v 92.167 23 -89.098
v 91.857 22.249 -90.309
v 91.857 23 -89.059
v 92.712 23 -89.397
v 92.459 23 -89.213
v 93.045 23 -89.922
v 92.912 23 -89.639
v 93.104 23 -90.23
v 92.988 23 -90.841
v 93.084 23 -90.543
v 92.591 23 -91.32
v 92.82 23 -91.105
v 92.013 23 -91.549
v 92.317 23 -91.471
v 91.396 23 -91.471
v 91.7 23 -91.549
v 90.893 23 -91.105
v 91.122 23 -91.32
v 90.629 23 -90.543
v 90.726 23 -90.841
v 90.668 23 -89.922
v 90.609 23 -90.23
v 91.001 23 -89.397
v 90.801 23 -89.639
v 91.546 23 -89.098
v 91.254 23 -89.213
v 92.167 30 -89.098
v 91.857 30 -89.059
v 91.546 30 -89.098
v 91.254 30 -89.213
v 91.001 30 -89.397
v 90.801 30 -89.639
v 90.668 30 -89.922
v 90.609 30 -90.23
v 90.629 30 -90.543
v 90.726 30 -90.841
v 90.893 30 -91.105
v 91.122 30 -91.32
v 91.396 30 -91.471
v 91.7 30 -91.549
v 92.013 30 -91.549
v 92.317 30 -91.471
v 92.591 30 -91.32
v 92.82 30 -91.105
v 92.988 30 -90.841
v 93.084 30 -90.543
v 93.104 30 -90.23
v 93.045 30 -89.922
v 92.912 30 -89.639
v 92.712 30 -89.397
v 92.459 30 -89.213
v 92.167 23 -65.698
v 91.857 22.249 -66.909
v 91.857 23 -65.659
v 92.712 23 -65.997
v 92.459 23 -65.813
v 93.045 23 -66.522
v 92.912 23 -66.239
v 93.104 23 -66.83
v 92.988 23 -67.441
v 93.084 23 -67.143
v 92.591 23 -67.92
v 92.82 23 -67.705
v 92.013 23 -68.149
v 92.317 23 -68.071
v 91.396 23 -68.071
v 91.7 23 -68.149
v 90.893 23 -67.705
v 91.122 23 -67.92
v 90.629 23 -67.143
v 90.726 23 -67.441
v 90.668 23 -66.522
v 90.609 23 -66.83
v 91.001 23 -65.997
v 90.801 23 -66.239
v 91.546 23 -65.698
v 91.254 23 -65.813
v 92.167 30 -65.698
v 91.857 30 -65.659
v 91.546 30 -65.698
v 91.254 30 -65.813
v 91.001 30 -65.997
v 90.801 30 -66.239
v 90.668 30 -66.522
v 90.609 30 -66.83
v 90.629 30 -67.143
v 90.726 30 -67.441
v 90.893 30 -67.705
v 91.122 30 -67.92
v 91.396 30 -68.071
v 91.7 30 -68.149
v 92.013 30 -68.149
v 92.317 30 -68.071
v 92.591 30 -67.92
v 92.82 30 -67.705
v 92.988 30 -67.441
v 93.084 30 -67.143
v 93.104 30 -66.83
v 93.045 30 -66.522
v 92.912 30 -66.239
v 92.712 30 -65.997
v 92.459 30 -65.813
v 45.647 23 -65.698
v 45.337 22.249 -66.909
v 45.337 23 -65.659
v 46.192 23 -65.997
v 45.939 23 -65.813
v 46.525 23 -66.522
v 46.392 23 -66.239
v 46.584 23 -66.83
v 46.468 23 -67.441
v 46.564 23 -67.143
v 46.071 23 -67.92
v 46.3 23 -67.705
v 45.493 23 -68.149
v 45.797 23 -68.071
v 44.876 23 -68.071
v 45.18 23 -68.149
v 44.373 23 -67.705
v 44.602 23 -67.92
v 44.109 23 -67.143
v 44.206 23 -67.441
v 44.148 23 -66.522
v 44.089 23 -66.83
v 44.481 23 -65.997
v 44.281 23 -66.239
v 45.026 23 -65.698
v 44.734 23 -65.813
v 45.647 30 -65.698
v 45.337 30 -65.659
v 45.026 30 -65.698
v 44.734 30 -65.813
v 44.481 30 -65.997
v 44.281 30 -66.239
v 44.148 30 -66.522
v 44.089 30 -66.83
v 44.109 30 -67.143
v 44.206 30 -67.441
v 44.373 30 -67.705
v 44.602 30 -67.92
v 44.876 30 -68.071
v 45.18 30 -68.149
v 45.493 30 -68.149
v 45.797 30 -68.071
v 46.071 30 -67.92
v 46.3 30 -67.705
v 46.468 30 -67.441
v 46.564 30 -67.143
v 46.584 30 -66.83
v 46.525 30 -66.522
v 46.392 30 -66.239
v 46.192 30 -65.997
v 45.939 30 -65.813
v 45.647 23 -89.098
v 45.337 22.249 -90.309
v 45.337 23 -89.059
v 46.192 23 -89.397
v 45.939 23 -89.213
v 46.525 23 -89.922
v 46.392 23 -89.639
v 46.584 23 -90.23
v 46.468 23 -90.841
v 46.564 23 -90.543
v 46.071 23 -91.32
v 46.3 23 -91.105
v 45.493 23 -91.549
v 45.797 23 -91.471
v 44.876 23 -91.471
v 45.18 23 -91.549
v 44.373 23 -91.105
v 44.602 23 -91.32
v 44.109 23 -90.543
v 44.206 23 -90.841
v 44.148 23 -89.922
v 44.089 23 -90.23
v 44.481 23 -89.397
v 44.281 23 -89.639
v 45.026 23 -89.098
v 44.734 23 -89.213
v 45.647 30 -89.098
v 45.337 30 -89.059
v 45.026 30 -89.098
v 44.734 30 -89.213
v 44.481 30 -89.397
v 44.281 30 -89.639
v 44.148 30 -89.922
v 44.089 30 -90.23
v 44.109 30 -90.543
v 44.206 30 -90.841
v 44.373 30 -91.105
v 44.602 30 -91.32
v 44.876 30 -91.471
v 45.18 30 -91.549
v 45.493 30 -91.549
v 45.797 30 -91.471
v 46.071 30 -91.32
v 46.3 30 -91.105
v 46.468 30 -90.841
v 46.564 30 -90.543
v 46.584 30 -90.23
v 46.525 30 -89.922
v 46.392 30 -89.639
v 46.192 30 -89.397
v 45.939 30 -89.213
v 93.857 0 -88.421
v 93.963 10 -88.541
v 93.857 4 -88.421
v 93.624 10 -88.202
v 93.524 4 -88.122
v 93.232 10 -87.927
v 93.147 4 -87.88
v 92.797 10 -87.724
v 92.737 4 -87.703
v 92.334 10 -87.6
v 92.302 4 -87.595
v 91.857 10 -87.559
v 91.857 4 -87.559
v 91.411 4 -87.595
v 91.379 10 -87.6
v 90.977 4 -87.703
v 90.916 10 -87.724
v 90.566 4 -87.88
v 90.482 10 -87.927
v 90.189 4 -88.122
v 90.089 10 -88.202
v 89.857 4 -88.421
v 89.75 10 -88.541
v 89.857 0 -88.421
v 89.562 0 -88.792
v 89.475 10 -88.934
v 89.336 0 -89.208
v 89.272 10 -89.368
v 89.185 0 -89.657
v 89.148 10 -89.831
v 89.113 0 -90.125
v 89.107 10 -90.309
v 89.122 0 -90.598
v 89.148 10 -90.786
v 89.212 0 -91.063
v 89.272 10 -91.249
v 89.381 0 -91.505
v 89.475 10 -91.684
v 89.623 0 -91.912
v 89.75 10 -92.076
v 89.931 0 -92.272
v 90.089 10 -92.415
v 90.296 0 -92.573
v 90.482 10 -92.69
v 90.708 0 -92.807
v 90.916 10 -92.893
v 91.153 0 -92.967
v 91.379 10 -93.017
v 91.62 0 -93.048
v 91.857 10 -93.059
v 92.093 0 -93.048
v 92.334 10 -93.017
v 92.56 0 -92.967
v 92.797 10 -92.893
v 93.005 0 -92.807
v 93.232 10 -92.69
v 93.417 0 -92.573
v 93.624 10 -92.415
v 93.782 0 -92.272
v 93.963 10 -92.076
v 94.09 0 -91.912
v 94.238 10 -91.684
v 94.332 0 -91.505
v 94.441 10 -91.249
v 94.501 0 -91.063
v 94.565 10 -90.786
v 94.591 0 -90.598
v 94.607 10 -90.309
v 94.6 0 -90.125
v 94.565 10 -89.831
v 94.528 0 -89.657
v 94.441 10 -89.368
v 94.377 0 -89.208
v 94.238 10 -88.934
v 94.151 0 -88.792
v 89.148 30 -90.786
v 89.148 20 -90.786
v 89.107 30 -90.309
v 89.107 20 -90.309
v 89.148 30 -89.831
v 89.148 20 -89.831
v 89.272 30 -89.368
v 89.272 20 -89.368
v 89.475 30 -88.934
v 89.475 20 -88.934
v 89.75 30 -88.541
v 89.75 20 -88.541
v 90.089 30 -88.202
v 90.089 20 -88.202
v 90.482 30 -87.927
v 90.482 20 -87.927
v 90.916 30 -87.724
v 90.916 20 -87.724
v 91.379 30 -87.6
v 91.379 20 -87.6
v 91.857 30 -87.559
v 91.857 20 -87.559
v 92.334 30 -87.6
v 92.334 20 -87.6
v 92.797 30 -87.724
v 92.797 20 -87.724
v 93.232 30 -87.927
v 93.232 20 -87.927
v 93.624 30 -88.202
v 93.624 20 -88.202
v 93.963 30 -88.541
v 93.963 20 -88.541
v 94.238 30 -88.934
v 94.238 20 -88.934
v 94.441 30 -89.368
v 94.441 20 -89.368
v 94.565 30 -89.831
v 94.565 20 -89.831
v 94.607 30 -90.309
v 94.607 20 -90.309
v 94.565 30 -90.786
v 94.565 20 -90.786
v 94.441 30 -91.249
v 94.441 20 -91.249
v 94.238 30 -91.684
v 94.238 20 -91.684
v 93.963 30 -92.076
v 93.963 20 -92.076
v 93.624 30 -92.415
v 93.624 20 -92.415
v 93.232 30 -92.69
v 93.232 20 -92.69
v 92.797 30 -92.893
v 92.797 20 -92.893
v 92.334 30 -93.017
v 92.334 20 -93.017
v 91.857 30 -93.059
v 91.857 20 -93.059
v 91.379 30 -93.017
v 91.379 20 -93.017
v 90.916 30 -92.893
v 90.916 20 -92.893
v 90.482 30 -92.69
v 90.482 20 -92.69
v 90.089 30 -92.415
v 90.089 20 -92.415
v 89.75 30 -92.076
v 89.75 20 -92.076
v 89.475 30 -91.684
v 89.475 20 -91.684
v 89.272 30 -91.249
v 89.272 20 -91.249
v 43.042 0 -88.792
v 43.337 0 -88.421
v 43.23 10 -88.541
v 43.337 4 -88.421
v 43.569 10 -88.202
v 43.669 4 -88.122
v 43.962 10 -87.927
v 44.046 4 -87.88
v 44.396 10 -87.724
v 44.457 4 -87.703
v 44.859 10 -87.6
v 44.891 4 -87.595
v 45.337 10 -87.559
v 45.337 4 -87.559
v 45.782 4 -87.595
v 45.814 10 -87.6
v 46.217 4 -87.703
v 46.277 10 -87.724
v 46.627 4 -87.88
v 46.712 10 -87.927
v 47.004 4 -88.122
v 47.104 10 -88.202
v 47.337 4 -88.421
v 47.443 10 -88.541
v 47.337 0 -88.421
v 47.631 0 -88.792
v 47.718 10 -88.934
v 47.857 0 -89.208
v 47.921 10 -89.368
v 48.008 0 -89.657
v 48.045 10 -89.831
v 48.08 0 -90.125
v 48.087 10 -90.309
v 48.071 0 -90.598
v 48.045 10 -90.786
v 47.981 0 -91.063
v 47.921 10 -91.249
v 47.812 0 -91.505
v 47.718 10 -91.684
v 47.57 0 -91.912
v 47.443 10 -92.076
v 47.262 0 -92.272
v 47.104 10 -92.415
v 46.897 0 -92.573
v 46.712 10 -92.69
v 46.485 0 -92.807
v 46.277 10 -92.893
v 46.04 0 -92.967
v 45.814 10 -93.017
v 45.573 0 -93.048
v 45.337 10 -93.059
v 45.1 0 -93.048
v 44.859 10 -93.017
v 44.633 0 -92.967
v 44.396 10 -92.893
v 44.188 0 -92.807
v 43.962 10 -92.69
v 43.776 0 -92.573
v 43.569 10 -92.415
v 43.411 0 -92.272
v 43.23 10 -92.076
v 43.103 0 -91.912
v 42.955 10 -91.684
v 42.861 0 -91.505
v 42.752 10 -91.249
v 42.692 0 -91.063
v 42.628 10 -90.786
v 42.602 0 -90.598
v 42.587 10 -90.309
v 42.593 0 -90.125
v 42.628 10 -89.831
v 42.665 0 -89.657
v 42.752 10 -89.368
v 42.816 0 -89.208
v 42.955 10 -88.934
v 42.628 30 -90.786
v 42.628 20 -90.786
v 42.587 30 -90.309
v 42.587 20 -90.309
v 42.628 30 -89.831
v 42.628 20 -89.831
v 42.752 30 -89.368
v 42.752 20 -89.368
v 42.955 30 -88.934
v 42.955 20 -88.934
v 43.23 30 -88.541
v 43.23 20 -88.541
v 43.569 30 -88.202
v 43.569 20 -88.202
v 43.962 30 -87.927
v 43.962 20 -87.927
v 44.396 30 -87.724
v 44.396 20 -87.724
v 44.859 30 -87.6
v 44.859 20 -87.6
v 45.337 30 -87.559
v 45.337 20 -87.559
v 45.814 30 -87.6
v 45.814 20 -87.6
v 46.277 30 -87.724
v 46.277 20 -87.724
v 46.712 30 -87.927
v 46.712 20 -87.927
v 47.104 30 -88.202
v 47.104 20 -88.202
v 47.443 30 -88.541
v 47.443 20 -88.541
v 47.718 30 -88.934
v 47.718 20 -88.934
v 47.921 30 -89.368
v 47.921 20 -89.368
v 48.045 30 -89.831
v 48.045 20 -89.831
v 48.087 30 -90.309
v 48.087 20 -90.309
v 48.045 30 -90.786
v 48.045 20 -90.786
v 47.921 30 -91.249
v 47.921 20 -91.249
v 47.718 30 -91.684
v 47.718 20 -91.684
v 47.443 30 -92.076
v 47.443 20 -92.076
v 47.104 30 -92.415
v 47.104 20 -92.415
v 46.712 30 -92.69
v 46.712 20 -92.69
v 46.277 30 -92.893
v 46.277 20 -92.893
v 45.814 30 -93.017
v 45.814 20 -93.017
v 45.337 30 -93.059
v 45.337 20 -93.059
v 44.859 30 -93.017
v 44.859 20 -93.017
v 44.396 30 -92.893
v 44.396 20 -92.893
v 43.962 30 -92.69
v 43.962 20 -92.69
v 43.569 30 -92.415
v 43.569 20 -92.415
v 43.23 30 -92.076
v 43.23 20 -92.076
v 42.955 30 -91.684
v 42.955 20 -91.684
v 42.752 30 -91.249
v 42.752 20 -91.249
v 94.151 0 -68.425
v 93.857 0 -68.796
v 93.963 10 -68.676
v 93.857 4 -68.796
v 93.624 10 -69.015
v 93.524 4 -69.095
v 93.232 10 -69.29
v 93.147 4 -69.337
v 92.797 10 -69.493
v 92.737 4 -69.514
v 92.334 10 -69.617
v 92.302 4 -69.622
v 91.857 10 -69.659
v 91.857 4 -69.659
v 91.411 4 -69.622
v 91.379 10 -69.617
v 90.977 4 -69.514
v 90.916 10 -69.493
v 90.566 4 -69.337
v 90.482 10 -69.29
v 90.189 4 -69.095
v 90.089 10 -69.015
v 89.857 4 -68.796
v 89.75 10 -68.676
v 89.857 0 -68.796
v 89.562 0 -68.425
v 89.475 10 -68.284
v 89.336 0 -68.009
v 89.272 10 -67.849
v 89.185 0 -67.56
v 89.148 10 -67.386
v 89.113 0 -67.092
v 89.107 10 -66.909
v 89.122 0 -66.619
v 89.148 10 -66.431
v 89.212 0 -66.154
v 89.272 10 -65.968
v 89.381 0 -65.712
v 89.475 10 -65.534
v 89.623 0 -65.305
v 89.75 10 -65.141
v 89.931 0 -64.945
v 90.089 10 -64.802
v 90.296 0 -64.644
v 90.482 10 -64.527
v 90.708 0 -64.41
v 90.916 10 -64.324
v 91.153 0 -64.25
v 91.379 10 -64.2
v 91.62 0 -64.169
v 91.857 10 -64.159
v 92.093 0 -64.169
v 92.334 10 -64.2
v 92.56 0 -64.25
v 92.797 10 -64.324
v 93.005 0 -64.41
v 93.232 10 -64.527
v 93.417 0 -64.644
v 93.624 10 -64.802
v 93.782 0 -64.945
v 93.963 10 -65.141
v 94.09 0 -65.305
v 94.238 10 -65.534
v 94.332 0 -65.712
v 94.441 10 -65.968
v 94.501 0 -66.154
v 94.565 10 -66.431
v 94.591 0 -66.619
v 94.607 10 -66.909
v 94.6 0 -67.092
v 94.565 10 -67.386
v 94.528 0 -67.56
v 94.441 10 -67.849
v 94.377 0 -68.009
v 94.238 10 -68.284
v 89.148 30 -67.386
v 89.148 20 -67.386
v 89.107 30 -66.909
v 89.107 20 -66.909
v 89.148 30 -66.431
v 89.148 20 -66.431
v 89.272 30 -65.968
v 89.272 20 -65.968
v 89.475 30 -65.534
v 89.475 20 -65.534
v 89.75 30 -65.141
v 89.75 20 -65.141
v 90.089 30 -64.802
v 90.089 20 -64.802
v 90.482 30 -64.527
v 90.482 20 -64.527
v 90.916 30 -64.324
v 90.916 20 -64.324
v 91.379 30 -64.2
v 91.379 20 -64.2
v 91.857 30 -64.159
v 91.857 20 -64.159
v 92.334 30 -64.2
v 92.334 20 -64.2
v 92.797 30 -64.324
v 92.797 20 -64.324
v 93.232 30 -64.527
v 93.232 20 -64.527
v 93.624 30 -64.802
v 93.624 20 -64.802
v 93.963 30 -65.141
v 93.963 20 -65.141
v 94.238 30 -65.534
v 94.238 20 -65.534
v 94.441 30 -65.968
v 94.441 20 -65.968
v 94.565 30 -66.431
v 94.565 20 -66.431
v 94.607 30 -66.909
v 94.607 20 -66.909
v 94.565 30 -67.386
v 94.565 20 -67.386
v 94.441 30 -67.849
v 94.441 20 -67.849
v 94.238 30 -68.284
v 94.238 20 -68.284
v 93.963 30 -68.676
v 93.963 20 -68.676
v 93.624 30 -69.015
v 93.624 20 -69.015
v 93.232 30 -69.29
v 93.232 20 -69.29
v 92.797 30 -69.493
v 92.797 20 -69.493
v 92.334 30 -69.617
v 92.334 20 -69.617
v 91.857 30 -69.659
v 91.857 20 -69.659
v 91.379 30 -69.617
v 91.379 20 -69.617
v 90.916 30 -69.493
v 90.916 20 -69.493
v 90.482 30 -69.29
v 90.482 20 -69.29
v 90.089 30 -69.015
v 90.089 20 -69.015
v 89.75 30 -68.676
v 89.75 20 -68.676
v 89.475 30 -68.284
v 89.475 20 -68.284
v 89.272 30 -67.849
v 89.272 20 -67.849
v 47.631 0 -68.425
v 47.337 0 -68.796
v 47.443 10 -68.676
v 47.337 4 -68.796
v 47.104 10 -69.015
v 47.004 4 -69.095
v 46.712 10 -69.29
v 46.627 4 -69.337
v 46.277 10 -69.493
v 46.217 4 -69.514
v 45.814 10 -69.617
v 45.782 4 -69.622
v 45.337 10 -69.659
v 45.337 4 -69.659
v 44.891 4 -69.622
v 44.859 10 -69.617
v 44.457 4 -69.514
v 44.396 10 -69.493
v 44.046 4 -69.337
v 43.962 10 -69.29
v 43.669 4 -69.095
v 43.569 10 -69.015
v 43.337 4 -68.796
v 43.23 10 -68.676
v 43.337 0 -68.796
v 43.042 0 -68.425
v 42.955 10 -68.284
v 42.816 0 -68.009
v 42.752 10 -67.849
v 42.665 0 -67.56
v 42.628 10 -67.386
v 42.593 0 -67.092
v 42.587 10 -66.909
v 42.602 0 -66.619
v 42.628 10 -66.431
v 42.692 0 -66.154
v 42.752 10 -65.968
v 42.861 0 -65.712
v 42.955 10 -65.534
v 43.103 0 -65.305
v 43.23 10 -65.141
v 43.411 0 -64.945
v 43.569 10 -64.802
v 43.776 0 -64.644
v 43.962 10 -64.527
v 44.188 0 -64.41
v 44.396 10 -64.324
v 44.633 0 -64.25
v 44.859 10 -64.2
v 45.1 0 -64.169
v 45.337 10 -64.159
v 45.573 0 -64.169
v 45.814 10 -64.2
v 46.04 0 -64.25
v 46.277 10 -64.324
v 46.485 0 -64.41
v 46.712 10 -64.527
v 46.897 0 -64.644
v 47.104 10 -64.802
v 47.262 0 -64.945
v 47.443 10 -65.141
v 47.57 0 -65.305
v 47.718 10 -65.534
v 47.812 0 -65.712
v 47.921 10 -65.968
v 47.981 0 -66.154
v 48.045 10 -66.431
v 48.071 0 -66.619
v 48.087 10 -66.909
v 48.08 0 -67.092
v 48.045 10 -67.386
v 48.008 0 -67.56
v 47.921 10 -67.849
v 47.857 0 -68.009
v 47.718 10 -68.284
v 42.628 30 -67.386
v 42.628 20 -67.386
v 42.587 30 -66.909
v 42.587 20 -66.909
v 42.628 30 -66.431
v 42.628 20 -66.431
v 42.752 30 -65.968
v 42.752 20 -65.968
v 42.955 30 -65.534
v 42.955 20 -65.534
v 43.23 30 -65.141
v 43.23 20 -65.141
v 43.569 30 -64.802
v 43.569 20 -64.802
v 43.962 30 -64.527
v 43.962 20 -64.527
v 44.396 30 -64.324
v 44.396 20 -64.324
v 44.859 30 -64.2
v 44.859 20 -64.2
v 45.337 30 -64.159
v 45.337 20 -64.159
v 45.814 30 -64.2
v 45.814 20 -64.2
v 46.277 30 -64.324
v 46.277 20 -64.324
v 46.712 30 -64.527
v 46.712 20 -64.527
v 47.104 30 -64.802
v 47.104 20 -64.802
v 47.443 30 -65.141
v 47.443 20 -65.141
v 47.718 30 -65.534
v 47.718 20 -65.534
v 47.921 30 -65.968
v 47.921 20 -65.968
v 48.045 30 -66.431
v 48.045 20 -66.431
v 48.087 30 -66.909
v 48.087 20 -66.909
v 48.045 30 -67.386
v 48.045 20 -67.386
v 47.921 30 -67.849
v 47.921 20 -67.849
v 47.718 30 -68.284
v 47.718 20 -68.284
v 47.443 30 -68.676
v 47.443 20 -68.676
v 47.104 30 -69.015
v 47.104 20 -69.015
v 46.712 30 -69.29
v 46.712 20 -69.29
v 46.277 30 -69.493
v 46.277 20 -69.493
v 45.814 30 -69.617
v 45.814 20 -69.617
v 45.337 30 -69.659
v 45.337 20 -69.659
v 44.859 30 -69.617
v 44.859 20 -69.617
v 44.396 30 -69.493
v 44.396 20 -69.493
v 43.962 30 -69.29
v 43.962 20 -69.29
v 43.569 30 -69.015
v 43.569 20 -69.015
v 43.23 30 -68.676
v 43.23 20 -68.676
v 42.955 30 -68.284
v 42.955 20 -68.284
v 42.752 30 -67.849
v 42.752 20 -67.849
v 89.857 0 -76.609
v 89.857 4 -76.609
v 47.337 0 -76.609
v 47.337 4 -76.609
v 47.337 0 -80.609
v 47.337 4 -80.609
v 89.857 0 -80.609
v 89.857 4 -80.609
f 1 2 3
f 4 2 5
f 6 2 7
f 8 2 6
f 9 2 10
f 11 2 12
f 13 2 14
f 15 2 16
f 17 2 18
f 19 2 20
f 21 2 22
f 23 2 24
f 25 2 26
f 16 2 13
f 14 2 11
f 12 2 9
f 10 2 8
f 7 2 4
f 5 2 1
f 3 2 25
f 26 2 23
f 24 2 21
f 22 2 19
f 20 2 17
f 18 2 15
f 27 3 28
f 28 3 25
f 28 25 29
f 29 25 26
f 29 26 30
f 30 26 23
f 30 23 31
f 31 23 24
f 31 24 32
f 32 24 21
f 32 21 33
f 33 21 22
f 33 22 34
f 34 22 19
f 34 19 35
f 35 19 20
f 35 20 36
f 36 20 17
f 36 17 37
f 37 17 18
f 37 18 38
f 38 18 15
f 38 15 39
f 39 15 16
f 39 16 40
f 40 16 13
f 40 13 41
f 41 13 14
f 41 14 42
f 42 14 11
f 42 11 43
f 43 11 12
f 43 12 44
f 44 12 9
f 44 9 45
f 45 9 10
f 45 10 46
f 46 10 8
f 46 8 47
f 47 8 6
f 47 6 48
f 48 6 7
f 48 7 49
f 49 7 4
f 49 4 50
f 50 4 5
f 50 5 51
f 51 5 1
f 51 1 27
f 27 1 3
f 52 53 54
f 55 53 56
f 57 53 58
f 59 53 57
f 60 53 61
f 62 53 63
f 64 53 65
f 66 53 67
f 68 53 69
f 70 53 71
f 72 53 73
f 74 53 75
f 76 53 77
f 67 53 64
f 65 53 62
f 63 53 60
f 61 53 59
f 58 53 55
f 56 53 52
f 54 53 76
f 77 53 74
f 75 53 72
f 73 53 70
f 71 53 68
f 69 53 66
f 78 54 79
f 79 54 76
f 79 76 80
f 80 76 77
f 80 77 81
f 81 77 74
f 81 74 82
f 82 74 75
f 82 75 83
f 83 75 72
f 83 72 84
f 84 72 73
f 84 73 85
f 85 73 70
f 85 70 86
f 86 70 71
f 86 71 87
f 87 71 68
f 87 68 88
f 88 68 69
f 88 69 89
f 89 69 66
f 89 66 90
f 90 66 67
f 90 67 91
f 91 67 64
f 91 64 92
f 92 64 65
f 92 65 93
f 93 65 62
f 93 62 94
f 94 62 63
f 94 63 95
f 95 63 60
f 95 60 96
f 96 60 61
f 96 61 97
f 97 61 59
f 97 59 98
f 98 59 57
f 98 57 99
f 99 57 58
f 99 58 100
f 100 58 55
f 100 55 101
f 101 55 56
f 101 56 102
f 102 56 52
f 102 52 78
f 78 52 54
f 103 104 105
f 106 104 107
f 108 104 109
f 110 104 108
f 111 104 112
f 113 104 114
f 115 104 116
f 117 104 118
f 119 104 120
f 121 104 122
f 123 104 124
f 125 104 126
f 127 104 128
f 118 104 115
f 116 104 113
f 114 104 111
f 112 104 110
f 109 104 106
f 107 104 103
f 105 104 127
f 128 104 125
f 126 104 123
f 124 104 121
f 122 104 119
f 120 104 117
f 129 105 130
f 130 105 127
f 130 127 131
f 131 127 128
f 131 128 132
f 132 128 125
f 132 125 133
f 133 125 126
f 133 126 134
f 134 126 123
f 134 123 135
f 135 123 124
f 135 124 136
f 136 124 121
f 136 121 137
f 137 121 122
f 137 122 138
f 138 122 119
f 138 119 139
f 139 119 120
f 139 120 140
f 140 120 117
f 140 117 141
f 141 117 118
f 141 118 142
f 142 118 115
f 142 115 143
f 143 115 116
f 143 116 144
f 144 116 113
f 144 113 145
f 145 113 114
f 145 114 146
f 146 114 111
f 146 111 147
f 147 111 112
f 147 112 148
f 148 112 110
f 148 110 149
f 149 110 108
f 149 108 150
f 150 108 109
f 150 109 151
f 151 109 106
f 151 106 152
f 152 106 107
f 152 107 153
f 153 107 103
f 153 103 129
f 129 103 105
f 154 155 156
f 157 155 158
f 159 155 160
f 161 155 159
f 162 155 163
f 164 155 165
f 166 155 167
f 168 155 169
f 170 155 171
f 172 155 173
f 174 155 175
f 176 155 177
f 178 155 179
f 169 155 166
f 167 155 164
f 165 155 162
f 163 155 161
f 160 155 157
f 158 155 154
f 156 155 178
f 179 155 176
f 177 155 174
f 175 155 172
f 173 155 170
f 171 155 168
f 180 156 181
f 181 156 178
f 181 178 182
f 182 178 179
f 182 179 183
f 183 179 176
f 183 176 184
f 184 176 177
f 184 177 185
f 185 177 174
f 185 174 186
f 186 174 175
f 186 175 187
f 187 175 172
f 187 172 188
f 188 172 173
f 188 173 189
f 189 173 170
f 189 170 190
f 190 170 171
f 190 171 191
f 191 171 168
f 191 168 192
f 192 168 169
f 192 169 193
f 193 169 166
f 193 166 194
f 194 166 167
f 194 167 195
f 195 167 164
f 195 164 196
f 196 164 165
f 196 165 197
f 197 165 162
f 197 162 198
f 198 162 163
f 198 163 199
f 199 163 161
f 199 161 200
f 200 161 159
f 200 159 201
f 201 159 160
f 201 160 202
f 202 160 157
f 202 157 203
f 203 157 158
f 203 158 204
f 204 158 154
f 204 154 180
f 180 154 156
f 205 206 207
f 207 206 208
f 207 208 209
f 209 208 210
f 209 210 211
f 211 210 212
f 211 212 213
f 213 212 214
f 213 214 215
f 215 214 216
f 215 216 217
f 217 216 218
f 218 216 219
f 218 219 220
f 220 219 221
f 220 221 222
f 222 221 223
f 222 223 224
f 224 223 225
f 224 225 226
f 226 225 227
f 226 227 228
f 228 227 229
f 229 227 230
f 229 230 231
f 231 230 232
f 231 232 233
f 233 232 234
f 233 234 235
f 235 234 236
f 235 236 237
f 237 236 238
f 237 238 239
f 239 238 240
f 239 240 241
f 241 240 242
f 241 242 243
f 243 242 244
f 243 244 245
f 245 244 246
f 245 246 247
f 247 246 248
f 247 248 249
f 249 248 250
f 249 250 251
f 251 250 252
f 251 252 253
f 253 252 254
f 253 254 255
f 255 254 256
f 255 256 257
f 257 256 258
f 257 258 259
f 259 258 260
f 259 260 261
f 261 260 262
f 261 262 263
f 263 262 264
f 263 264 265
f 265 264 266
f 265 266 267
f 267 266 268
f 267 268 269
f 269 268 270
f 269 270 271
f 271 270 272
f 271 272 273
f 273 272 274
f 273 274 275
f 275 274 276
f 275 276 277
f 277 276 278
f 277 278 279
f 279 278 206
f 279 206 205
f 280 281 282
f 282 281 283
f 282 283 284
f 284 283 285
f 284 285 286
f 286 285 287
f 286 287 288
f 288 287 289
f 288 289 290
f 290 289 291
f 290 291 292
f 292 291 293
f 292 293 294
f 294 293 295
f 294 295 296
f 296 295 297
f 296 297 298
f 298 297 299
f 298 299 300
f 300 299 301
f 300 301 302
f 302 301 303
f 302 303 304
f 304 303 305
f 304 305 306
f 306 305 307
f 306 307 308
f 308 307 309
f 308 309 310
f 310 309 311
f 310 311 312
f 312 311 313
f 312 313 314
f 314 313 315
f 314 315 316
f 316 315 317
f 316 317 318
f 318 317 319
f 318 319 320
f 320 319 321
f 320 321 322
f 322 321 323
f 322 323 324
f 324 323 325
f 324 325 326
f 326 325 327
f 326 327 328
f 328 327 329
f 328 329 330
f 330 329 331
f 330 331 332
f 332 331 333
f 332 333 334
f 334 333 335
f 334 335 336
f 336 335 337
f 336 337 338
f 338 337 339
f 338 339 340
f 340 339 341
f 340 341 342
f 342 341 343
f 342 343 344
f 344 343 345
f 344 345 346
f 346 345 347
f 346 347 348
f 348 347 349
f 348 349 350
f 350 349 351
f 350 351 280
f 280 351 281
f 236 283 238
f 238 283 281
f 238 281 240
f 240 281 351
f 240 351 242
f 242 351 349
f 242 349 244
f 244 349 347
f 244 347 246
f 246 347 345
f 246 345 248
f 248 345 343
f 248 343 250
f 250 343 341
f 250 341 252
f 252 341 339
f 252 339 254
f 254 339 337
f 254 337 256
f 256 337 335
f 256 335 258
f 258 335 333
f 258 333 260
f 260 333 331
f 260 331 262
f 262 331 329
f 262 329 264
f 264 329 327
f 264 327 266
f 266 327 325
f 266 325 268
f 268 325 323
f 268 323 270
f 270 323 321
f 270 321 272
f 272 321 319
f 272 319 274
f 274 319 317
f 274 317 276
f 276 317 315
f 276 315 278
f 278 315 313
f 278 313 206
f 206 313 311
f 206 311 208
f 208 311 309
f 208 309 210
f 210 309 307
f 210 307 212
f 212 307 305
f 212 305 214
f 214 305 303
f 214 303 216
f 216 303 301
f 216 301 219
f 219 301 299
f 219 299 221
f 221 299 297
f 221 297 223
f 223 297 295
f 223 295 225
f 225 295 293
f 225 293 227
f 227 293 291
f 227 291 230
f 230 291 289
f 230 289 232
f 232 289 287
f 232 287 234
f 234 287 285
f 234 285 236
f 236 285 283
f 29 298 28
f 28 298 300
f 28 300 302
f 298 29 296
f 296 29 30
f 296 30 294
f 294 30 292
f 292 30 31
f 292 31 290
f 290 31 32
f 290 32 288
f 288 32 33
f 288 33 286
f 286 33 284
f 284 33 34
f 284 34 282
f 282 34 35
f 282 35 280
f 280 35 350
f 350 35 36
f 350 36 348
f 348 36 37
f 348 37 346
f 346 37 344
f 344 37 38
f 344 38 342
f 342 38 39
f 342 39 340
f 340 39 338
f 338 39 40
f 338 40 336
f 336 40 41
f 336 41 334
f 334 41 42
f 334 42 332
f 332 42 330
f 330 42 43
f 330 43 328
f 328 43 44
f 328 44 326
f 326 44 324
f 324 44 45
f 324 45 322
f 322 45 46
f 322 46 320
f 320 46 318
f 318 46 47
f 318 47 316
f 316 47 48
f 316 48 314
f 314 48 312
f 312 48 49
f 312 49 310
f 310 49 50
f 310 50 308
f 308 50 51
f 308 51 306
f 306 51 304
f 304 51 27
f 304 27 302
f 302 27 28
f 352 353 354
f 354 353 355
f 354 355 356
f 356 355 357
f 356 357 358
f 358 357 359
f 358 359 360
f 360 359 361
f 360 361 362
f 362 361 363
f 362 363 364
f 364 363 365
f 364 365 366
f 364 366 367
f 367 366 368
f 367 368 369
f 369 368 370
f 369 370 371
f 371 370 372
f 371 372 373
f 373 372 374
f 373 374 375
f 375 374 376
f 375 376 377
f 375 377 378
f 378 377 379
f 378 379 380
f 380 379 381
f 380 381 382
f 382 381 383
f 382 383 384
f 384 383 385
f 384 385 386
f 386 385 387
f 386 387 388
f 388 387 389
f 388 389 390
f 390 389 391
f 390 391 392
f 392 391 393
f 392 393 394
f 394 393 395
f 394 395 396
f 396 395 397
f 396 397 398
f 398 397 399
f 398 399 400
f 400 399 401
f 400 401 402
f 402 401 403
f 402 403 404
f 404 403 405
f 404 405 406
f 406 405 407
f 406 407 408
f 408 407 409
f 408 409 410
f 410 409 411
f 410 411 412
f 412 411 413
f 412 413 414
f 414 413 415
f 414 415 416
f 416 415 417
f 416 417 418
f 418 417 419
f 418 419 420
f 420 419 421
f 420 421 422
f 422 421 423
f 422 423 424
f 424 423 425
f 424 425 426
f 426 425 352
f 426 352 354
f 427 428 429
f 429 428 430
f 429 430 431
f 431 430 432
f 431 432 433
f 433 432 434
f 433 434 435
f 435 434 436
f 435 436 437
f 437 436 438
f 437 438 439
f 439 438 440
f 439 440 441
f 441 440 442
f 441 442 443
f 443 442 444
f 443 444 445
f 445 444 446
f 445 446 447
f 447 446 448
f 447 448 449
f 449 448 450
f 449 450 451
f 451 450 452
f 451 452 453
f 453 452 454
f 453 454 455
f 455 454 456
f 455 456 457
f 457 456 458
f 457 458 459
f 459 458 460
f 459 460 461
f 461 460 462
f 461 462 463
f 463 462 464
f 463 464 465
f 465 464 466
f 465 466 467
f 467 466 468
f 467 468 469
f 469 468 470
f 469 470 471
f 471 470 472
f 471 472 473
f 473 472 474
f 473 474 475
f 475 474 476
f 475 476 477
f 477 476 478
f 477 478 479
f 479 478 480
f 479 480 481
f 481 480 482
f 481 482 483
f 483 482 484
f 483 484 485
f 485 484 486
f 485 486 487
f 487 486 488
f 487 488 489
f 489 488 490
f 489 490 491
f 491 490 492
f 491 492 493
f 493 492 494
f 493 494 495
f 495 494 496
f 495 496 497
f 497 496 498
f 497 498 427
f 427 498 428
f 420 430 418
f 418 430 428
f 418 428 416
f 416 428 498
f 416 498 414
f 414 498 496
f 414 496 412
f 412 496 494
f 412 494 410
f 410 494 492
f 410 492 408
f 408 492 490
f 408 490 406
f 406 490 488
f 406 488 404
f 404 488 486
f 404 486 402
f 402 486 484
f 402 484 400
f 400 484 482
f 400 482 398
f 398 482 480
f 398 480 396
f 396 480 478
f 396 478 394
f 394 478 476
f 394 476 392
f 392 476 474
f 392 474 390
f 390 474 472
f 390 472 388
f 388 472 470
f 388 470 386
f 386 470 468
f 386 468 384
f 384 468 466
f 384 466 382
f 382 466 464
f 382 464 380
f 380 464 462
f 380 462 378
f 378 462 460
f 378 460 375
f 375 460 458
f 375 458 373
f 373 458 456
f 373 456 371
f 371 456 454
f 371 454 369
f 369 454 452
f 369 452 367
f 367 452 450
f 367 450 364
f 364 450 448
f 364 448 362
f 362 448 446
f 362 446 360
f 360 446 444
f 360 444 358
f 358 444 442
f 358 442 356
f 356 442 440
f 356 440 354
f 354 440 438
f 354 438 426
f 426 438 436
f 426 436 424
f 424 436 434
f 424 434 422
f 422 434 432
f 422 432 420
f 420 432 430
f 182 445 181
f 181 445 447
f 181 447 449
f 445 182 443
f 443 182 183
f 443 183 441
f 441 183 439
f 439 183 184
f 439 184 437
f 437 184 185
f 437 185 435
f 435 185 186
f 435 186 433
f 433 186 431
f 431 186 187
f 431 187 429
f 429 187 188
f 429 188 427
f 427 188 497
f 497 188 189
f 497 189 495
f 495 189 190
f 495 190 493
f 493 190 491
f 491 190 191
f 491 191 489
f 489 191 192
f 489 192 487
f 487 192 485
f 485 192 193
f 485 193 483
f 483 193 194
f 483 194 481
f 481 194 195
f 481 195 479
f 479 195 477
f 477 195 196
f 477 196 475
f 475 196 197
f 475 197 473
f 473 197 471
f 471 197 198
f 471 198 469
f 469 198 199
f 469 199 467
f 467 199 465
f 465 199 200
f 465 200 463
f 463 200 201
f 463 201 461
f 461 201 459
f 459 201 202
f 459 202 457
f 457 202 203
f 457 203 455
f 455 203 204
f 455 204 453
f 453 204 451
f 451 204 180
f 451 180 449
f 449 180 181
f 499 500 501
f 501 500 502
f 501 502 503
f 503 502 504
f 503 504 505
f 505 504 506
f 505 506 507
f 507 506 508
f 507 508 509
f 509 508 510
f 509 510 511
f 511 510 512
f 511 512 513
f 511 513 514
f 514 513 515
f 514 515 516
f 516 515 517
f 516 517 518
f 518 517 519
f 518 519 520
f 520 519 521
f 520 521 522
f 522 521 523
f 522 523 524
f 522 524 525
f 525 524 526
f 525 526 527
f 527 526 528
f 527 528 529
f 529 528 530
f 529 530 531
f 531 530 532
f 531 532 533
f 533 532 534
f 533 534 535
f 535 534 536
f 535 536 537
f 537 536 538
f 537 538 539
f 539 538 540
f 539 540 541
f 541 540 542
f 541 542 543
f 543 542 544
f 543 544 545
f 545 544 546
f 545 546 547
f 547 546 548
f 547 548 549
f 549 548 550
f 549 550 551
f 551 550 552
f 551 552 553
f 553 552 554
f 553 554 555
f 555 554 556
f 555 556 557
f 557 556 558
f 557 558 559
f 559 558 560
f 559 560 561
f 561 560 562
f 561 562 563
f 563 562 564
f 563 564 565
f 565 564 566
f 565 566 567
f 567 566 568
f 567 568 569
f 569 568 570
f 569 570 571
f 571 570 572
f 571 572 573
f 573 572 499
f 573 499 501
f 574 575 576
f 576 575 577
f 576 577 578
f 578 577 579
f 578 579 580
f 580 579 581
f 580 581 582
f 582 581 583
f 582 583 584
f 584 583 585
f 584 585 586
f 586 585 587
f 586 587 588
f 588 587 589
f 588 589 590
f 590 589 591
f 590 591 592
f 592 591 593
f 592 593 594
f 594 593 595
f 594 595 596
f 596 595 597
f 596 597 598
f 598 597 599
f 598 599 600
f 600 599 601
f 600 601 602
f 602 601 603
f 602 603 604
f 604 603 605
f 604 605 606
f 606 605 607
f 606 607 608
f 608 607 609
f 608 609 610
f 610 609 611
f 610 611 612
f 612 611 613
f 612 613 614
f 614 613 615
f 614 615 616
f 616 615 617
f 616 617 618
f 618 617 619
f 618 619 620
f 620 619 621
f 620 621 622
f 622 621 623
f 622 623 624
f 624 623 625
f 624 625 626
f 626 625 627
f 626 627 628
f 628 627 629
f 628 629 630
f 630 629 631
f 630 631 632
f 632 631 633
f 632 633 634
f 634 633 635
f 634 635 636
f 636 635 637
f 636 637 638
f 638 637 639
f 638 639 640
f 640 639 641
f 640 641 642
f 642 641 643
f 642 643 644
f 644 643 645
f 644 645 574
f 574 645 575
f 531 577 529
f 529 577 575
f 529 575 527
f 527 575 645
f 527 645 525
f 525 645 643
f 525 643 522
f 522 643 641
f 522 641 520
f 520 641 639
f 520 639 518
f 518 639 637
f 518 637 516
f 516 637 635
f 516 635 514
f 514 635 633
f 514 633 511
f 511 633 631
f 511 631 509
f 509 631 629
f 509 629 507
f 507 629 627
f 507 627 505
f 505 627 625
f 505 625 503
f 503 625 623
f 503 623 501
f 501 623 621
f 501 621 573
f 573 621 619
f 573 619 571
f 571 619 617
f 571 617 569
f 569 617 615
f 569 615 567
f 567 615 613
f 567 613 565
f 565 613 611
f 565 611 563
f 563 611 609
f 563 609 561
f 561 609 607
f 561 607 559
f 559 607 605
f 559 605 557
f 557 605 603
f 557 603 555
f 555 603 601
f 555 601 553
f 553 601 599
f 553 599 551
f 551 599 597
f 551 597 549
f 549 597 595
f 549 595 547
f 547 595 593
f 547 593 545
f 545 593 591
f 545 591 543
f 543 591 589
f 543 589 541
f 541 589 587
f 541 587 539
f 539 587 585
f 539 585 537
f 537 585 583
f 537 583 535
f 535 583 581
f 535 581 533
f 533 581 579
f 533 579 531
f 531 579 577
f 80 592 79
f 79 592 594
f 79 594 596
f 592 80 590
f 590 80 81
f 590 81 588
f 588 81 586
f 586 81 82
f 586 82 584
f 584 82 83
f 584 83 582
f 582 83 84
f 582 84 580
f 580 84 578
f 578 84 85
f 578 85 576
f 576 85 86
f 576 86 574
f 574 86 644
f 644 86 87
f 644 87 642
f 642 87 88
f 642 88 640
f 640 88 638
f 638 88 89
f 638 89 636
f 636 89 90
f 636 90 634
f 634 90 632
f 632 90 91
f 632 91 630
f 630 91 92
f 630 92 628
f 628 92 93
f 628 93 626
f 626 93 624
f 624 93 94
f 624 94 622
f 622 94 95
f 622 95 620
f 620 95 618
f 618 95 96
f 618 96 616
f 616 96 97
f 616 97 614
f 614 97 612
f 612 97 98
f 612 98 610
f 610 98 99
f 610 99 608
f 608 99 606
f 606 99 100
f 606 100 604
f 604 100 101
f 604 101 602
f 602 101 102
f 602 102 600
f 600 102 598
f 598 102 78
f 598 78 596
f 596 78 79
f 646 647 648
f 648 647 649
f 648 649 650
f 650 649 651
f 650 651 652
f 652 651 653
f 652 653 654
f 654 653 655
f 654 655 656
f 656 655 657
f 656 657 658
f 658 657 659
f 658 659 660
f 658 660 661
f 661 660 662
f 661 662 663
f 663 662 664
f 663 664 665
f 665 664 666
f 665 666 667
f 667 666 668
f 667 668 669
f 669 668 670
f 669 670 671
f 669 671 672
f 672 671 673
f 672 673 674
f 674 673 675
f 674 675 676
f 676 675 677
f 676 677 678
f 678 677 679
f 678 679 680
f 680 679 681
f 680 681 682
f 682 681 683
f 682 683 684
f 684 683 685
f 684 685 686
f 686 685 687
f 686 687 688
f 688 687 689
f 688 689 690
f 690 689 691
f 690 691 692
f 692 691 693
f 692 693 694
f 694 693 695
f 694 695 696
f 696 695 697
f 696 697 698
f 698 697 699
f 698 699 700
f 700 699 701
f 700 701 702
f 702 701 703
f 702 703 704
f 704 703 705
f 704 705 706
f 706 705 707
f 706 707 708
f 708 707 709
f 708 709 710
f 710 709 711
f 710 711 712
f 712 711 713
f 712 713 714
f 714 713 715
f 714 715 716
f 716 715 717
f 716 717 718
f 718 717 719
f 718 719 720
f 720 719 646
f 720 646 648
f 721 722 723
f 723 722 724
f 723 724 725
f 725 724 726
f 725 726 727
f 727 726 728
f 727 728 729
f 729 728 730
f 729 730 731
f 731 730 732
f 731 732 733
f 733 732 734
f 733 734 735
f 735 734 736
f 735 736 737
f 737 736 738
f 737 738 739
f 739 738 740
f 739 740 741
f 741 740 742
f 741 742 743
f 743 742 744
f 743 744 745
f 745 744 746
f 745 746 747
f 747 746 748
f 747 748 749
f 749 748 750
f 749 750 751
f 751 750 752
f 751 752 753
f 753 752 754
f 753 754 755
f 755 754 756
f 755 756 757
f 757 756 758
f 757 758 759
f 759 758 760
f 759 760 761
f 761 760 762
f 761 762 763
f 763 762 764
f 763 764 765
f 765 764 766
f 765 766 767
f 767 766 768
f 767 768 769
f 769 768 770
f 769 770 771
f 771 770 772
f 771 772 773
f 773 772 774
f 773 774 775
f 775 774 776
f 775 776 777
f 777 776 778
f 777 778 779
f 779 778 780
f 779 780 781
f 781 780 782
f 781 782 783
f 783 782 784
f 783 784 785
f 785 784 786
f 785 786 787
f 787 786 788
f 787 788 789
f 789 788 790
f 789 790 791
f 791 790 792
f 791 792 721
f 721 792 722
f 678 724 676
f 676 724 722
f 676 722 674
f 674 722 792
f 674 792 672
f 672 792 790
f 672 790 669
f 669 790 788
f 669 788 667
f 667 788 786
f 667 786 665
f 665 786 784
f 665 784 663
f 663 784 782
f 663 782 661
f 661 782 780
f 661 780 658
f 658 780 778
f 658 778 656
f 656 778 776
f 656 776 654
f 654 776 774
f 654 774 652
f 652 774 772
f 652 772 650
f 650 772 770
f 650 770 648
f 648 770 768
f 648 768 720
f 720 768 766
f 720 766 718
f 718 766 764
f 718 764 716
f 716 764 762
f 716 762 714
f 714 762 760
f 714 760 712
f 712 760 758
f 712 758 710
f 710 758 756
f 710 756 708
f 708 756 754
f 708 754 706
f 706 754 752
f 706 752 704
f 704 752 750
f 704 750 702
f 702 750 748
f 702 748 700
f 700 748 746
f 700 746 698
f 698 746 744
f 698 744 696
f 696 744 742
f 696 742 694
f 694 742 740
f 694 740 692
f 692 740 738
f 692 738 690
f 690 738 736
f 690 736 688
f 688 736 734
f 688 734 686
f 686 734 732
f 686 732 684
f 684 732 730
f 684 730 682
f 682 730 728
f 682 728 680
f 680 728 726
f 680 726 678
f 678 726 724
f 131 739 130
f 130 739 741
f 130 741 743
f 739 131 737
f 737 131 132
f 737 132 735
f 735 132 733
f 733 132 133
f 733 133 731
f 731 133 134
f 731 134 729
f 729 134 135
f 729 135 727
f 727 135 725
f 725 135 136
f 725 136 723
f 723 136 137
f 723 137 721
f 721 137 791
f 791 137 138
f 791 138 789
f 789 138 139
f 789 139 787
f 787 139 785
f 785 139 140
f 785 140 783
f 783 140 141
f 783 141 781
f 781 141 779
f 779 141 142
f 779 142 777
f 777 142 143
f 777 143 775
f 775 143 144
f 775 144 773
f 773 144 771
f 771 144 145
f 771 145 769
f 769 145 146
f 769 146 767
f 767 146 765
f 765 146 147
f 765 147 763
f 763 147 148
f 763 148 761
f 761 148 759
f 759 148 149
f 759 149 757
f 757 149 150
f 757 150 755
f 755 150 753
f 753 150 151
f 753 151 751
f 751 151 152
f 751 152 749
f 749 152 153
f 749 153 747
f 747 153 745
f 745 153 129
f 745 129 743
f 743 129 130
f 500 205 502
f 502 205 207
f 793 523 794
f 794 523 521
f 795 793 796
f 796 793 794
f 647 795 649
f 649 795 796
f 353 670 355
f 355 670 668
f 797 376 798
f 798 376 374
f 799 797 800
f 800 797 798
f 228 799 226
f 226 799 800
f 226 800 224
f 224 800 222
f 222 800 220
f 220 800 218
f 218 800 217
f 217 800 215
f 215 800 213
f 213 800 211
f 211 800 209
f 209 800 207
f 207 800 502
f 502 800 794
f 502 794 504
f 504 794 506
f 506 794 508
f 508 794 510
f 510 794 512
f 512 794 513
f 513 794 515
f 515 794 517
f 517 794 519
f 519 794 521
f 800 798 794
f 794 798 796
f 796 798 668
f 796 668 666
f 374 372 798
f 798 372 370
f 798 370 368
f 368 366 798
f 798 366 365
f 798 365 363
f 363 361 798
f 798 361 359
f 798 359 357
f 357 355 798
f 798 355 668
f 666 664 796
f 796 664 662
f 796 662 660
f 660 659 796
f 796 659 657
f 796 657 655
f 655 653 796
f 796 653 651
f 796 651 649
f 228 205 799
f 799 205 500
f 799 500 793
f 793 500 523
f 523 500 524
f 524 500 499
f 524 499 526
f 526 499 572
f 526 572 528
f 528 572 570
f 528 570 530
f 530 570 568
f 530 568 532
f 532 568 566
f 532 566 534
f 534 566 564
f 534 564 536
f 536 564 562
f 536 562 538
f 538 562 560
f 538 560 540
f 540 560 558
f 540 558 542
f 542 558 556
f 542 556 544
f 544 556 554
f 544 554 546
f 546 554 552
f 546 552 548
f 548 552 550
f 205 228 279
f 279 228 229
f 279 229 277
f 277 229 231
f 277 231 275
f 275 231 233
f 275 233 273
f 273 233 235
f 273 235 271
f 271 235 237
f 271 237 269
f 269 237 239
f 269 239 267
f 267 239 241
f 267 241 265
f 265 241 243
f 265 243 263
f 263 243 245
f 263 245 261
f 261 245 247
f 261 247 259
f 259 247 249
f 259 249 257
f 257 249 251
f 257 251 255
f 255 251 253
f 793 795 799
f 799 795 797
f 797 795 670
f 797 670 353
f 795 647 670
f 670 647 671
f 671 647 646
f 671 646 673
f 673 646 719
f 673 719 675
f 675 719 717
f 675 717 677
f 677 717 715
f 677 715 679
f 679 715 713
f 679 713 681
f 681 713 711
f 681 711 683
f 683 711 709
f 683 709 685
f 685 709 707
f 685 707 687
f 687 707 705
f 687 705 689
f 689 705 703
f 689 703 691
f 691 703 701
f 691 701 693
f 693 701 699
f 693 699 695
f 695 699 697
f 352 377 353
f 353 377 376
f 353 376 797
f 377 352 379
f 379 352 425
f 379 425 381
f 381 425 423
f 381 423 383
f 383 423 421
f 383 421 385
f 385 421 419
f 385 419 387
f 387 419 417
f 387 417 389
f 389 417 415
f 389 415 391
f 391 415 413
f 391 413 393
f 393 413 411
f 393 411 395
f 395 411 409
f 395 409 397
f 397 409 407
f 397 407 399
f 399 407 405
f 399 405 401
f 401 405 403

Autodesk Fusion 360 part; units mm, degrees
sketch "Schizzo8" plane through (0, 0, 0) normal (0, 1, 0) x (1, 0, 0)
  line L0 (45.3365, 90.3085) -> (91.8565, 90.3085)
  line L1 (91.8565, 90.3085) -> (91.8565, 66.9085)
  line L2 (91.8565, 66.9085) -> (45.3365, 66.9085)
  line L3 (45.3365, 66.9085) -> (45.3365, 90.3085)
  circle A0 centre (45.3365, 90.3085) radius 2.75
  circle A1 centre (91.8565, 90.3085) radius 2.75
  circle A2 centre (91.8565, 66.9085) radius 2.75
  circle A3 centre (45.3365, 66.9085) radius 2.75
  line L4 (45.3365, 90.3085) -> (47.3365, 90.3085)
  line L5 (45.3365, 90.3085) -> (43.3365, 90.3085)
  line L6 (43.3365, 90.3085) -> (43.3365, 66.9085)
  line L7 (47.3365, 90.3085) -> (47.3365, 66.9085)
  line L8 (91.8565, 90.3085) -> (93.8565, 90.3085)
  line L9 (91.8565, 90.3085) -> (89.8565, 90.3085)
  line L10 (89.8565, 90.3085) -> (89.8565, 66.9085)
  line L11 (93.8565, 90.3085) -> (93.8565, 66.9085)
  line L12 (93.8565, 78.6085) -> (93.8565, 80.6085)
  line L13 (93.8565, 78.6085) -> (93.8565, 76.6085)
  line L14 (93.8565, 80.6085) -> (43.3365, 80.6085)
  line L15 (93.8565, 76.6085) -> (43.3365, 76.6085)
  dimension "d71" = 46.52
  dimension "d72" = 23.4
  dimension "d73" = 5.5
  dimension "d74" = 5.5
  dimension "d75" = 5.5
  dimension "d76" = 5.5
  dimension "d77" = 2
  dimension "d78" = 2
  dimension "d79" = 2
  dimension "d80" = 2
  dimension "d81" = 2
  dimension "d82" = 2
extrude "Estrusione14" add sketch "Schizzo8" along normal blind 4 contours L3 A0 L7 L14 | L3 A0 L6 L14 | L3 L7 L14 L15 | L3 L6 L14 L15 | L7 L10 L14 L15 | L3 A3 L7 L15 | L3 A3 L6 L15 | L1 A1 L10 L14 | L1 L10 L14 L15 | L1 A1 L11 L14 | L1 A2 L10 L15 | L1 L11 L12 L13 L14 L15 | L1 A2 L11 L15
extrude "Estrusione15" add sketch "Schizzo8" along normal blind 30 contours L0 A0 L4 L5 L6 | L0 L3 A0 L4 L7 | L3 A0 L5 L6 | L0 A0 L7 | L0 A1 L8 L9 L11 | L0 A1 L10 | L0 L1 A1 L9 L10 | L2 L3 A3 L7 | L2 L3 A3 | L1 A1 L8 L11 | L2 A3 L7 | L2 A2 L10 | L1 L2 A2 L10 | L1 L2 A2
hole "Foratura5" at (45.3365, 30, -90.3085) direction (0, -1, 0) diameter 2.5 depth 7 tip angle 118
hole "Foratura6" at (45.3365, 30, -66.9085) direction (0, -1, 0) diameter 2.5 depth 7 tip angle 118
hole "Foratura7" at (91.8565, 30, -66.9085) direction (0, -1, 0) diameter 2.5 depth 7 tip angle 118
hole "Foratura8" at (91.8565, 30, -90.3085) direction (0, -1, 0) diameter 2.5 depth 7 tip angle 118
